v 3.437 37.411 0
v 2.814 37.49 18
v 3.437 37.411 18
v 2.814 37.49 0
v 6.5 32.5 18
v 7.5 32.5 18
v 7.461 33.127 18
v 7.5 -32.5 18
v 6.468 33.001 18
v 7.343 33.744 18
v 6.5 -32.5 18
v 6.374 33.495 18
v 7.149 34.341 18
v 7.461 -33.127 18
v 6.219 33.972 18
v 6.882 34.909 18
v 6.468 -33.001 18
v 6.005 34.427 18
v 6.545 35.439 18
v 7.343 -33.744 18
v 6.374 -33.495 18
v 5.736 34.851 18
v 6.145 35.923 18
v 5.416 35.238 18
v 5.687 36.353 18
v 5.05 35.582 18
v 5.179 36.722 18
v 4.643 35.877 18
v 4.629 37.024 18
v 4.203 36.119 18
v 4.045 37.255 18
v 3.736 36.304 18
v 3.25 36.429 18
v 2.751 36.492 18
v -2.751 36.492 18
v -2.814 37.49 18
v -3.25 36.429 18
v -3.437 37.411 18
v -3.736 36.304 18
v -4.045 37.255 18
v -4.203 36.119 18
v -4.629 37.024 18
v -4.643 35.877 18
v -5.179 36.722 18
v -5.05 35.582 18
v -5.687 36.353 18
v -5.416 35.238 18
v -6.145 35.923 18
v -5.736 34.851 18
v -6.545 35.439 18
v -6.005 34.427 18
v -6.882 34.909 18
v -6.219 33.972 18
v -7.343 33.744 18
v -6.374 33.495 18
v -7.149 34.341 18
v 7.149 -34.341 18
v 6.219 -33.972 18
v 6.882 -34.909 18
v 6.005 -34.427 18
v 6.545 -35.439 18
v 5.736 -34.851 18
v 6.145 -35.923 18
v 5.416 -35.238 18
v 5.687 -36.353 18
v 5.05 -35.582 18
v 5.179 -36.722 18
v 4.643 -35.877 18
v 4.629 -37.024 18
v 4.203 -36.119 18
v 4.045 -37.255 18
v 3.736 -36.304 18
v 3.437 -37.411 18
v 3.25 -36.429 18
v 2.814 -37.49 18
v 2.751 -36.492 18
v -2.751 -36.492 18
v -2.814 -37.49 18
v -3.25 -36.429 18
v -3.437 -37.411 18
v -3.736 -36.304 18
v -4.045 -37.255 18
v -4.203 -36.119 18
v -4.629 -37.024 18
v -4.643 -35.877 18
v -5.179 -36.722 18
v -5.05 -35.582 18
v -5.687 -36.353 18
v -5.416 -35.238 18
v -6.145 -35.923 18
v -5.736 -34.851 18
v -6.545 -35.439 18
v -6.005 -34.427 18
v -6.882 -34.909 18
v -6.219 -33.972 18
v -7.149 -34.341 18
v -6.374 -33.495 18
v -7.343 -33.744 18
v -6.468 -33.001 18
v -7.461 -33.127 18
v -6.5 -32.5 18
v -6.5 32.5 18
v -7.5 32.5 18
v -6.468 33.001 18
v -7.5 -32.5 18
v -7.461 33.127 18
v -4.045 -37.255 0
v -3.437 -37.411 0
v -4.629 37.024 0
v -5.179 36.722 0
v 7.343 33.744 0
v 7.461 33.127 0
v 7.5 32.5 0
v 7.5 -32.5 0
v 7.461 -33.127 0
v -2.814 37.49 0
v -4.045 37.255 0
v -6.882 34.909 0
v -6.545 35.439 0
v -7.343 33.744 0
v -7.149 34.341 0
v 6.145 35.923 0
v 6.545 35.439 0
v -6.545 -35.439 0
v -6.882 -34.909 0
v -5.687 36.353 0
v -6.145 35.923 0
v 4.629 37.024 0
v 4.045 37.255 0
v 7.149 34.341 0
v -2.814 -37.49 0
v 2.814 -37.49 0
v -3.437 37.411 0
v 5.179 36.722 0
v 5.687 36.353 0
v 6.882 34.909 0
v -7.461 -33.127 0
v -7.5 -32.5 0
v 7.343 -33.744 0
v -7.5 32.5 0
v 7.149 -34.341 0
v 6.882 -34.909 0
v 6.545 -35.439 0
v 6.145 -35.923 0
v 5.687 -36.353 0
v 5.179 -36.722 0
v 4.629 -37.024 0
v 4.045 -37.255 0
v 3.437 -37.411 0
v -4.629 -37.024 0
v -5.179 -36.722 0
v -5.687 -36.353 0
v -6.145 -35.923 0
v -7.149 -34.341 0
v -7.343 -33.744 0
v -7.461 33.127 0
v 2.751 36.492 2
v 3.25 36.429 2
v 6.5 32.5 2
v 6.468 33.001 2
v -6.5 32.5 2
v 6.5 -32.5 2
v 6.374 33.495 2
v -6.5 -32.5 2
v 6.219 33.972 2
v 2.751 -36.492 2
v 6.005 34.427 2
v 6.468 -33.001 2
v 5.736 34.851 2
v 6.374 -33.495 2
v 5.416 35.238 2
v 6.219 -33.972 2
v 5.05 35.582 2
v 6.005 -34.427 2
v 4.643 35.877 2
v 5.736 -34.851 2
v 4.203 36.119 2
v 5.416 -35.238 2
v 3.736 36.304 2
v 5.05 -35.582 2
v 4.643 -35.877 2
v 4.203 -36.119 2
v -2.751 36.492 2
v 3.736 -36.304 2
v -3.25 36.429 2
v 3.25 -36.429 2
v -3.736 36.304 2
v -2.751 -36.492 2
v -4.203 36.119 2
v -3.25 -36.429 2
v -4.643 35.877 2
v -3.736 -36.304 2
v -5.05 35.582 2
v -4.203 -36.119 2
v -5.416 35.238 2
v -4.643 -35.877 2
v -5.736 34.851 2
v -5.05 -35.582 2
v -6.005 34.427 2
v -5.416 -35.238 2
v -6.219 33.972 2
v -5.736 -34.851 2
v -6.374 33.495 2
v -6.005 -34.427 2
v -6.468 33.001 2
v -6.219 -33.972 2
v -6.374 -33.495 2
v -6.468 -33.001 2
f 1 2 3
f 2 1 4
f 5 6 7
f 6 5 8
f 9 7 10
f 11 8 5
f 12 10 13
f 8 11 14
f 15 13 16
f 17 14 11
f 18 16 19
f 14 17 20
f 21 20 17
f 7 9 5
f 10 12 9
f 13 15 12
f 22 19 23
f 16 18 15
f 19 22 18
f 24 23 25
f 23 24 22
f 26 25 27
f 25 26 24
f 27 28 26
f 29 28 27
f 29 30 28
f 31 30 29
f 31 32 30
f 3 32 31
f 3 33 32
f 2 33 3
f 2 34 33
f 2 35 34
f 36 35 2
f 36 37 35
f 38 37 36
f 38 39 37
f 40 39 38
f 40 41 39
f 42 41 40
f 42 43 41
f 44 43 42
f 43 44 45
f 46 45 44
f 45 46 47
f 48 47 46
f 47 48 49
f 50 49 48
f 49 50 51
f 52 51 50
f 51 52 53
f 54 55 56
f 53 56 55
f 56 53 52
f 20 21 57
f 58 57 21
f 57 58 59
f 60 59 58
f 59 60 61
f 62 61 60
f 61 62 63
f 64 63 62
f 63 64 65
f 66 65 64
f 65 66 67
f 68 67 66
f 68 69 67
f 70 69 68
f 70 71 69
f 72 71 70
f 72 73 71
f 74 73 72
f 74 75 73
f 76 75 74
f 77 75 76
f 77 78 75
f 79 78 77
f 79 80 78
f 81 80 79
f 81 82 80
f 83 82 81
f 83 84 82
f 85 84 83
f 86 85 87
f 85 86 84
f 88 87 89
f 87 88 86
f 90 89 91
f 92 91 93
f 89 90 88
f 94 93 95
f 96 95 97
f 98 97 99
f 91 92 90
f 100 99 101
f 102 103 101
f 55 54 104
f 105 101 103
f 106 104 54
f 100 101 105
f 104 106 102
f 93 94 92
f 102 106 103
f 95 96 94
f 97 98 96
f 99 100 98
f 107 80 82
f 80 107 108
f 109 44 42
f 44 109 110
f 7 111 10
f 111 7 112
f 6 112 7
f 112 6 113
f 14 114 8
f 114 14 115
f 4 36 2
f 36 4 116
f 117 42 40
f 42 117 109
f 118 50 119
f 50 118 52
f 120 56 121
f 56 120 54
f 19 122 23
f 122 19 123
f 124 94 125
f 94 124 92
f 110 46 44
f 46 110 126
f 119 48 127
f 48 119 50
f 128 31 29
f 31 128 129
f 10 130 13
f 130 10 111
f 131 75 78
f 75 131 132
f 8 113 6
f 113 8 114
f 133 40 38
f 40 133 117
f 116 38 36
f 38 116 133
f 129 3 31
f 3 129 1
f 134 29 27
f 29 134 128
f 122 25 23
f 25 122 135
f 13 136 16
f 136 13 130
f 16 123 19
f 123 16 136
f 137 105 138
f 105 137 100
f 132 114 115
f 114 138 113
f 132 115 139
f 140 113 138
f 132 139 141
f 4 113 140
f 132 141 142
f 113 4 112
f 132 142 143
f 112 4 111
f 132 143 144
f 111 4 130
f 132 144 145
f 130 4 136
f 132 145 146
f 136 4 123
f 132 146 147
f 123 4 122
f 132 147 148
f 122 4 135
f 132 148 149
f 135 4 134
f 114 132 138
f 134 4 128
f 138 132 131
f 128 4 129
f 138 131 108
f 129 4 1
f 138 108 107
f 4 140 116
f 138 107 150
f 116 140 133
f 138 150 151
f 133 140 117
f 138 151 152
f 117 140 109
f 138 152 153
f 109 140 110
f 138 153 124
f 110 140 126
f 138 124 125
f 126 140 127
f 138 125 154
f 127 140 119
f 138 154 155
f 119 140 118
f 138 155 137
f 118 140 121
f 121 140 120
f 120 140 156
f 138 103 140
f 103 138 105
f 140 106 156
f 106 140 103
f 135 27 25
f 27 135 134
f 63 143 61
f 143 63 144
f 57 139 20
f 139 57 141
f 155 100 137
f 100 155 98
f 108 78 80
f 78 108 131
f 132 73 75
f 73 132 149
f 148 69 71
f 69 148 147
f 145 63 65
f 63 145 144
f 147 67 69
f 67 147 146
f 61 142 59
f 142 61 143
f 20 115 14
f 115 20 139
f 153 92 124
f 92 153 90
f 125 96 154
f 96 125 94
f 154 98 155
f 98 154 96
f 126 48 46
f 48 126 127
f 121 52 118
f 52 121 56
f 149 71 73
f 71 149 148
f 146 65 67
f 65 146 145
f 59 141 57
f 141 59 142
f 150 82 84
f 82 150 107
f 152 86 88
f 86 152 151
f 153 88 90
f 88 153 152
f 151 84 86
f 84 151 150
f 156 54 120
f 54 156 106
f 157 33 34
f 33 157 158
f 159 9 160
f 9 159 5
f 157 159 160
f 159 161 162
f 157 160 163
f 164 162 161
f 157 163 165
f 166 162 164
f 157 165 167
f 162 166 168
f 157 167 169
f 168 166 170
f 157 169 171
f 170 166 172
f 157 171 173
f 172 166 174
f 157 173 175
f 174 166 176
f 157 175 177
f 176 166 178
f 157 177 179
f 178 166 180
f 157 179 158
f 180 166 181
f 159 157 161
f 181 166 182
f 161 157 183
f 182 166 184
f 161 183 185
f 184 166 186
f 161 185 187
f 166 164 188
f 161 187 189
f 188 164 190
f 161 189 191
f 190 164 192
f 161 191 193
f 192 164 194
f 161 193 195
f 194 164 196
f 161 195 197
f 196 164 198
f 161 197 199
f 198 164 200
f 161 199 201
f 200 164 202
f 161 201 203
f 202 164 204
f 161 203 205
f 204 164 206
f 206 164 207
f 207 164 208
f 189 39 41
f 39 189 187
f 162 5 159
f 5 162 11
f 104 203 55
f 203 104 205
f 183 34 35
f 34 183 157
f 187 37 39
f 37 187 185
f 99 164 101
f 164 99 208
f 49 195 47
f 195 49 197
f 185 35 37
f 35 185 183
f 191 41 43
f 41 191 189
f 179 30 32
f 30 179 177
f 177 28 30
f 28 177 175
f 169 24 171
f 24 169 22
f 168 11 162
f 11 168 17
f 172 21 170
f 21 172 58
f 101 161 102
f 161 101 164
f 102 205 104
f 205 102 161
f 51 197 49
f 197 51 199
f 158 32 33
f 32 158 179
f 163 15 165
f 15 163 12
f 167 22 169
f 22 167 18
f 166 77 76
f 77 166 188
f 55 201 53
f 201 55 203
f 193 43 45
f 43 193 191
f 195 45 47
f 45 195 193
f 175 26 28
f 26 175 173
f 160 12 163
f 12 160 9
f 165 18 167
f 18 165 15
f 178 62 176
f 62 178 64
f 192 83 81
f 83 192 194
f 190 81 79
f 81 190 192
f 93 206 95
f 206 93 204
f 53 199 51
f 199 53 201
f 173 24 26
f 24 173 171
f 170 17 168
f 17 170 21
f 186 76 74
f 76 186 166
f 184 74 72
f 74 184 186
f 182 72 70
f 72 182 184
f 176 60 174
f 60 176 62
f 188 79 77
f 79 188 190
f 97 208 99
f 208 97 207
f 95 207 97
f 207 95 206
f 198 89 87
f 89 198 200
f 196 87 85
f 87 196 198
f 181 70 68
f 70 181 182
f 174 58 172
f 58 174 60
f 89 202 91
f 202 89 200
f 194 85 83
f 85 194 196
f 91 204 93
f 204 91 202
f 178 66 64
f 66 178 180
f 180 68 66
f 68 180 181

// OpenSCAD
$fn = 50;


difference() {
	union() {
		hull() {
			translate(v = [-2.5000000000, 32.5000000000, 0]) {
				cylinder(h = 18, r = 5);
			}
			translate(v = [2.5000000000, 32.5000000000, 0]) {
				cylinder(h = 18, r = 5);
			}
			translate(v = [-2.5000000000, -32.5000000000, 0]) {
				cylinder(h = 18, r = 5);
			}
			translate(v = [2.5000000000, -32.5000000000, 0]) {
				cylinder(h = 18, r = 5);
			}
		}
	}
	union() {
		translate(v = [0, 0, 2]) {
			hull() {
				translate(v = [-2.5000000000, 32.5000000000, 0]) {
					cylinder(h = 16, r = 4);
				}
				translate(v = [2.5000000000, 32.5000000000, 0]) {
					cylinder(h = 16, r = 4);
				}
				translate(v = [-2.5000000000, -32.5000000000, 0]) {
					cylinder(h = 16, r = 4);
				}
				translate(v = [2.5000000000, -32.5000000000, 0]) {
					cylinder(h = 16, r = 4);
				}
			}
		}
	}
}
